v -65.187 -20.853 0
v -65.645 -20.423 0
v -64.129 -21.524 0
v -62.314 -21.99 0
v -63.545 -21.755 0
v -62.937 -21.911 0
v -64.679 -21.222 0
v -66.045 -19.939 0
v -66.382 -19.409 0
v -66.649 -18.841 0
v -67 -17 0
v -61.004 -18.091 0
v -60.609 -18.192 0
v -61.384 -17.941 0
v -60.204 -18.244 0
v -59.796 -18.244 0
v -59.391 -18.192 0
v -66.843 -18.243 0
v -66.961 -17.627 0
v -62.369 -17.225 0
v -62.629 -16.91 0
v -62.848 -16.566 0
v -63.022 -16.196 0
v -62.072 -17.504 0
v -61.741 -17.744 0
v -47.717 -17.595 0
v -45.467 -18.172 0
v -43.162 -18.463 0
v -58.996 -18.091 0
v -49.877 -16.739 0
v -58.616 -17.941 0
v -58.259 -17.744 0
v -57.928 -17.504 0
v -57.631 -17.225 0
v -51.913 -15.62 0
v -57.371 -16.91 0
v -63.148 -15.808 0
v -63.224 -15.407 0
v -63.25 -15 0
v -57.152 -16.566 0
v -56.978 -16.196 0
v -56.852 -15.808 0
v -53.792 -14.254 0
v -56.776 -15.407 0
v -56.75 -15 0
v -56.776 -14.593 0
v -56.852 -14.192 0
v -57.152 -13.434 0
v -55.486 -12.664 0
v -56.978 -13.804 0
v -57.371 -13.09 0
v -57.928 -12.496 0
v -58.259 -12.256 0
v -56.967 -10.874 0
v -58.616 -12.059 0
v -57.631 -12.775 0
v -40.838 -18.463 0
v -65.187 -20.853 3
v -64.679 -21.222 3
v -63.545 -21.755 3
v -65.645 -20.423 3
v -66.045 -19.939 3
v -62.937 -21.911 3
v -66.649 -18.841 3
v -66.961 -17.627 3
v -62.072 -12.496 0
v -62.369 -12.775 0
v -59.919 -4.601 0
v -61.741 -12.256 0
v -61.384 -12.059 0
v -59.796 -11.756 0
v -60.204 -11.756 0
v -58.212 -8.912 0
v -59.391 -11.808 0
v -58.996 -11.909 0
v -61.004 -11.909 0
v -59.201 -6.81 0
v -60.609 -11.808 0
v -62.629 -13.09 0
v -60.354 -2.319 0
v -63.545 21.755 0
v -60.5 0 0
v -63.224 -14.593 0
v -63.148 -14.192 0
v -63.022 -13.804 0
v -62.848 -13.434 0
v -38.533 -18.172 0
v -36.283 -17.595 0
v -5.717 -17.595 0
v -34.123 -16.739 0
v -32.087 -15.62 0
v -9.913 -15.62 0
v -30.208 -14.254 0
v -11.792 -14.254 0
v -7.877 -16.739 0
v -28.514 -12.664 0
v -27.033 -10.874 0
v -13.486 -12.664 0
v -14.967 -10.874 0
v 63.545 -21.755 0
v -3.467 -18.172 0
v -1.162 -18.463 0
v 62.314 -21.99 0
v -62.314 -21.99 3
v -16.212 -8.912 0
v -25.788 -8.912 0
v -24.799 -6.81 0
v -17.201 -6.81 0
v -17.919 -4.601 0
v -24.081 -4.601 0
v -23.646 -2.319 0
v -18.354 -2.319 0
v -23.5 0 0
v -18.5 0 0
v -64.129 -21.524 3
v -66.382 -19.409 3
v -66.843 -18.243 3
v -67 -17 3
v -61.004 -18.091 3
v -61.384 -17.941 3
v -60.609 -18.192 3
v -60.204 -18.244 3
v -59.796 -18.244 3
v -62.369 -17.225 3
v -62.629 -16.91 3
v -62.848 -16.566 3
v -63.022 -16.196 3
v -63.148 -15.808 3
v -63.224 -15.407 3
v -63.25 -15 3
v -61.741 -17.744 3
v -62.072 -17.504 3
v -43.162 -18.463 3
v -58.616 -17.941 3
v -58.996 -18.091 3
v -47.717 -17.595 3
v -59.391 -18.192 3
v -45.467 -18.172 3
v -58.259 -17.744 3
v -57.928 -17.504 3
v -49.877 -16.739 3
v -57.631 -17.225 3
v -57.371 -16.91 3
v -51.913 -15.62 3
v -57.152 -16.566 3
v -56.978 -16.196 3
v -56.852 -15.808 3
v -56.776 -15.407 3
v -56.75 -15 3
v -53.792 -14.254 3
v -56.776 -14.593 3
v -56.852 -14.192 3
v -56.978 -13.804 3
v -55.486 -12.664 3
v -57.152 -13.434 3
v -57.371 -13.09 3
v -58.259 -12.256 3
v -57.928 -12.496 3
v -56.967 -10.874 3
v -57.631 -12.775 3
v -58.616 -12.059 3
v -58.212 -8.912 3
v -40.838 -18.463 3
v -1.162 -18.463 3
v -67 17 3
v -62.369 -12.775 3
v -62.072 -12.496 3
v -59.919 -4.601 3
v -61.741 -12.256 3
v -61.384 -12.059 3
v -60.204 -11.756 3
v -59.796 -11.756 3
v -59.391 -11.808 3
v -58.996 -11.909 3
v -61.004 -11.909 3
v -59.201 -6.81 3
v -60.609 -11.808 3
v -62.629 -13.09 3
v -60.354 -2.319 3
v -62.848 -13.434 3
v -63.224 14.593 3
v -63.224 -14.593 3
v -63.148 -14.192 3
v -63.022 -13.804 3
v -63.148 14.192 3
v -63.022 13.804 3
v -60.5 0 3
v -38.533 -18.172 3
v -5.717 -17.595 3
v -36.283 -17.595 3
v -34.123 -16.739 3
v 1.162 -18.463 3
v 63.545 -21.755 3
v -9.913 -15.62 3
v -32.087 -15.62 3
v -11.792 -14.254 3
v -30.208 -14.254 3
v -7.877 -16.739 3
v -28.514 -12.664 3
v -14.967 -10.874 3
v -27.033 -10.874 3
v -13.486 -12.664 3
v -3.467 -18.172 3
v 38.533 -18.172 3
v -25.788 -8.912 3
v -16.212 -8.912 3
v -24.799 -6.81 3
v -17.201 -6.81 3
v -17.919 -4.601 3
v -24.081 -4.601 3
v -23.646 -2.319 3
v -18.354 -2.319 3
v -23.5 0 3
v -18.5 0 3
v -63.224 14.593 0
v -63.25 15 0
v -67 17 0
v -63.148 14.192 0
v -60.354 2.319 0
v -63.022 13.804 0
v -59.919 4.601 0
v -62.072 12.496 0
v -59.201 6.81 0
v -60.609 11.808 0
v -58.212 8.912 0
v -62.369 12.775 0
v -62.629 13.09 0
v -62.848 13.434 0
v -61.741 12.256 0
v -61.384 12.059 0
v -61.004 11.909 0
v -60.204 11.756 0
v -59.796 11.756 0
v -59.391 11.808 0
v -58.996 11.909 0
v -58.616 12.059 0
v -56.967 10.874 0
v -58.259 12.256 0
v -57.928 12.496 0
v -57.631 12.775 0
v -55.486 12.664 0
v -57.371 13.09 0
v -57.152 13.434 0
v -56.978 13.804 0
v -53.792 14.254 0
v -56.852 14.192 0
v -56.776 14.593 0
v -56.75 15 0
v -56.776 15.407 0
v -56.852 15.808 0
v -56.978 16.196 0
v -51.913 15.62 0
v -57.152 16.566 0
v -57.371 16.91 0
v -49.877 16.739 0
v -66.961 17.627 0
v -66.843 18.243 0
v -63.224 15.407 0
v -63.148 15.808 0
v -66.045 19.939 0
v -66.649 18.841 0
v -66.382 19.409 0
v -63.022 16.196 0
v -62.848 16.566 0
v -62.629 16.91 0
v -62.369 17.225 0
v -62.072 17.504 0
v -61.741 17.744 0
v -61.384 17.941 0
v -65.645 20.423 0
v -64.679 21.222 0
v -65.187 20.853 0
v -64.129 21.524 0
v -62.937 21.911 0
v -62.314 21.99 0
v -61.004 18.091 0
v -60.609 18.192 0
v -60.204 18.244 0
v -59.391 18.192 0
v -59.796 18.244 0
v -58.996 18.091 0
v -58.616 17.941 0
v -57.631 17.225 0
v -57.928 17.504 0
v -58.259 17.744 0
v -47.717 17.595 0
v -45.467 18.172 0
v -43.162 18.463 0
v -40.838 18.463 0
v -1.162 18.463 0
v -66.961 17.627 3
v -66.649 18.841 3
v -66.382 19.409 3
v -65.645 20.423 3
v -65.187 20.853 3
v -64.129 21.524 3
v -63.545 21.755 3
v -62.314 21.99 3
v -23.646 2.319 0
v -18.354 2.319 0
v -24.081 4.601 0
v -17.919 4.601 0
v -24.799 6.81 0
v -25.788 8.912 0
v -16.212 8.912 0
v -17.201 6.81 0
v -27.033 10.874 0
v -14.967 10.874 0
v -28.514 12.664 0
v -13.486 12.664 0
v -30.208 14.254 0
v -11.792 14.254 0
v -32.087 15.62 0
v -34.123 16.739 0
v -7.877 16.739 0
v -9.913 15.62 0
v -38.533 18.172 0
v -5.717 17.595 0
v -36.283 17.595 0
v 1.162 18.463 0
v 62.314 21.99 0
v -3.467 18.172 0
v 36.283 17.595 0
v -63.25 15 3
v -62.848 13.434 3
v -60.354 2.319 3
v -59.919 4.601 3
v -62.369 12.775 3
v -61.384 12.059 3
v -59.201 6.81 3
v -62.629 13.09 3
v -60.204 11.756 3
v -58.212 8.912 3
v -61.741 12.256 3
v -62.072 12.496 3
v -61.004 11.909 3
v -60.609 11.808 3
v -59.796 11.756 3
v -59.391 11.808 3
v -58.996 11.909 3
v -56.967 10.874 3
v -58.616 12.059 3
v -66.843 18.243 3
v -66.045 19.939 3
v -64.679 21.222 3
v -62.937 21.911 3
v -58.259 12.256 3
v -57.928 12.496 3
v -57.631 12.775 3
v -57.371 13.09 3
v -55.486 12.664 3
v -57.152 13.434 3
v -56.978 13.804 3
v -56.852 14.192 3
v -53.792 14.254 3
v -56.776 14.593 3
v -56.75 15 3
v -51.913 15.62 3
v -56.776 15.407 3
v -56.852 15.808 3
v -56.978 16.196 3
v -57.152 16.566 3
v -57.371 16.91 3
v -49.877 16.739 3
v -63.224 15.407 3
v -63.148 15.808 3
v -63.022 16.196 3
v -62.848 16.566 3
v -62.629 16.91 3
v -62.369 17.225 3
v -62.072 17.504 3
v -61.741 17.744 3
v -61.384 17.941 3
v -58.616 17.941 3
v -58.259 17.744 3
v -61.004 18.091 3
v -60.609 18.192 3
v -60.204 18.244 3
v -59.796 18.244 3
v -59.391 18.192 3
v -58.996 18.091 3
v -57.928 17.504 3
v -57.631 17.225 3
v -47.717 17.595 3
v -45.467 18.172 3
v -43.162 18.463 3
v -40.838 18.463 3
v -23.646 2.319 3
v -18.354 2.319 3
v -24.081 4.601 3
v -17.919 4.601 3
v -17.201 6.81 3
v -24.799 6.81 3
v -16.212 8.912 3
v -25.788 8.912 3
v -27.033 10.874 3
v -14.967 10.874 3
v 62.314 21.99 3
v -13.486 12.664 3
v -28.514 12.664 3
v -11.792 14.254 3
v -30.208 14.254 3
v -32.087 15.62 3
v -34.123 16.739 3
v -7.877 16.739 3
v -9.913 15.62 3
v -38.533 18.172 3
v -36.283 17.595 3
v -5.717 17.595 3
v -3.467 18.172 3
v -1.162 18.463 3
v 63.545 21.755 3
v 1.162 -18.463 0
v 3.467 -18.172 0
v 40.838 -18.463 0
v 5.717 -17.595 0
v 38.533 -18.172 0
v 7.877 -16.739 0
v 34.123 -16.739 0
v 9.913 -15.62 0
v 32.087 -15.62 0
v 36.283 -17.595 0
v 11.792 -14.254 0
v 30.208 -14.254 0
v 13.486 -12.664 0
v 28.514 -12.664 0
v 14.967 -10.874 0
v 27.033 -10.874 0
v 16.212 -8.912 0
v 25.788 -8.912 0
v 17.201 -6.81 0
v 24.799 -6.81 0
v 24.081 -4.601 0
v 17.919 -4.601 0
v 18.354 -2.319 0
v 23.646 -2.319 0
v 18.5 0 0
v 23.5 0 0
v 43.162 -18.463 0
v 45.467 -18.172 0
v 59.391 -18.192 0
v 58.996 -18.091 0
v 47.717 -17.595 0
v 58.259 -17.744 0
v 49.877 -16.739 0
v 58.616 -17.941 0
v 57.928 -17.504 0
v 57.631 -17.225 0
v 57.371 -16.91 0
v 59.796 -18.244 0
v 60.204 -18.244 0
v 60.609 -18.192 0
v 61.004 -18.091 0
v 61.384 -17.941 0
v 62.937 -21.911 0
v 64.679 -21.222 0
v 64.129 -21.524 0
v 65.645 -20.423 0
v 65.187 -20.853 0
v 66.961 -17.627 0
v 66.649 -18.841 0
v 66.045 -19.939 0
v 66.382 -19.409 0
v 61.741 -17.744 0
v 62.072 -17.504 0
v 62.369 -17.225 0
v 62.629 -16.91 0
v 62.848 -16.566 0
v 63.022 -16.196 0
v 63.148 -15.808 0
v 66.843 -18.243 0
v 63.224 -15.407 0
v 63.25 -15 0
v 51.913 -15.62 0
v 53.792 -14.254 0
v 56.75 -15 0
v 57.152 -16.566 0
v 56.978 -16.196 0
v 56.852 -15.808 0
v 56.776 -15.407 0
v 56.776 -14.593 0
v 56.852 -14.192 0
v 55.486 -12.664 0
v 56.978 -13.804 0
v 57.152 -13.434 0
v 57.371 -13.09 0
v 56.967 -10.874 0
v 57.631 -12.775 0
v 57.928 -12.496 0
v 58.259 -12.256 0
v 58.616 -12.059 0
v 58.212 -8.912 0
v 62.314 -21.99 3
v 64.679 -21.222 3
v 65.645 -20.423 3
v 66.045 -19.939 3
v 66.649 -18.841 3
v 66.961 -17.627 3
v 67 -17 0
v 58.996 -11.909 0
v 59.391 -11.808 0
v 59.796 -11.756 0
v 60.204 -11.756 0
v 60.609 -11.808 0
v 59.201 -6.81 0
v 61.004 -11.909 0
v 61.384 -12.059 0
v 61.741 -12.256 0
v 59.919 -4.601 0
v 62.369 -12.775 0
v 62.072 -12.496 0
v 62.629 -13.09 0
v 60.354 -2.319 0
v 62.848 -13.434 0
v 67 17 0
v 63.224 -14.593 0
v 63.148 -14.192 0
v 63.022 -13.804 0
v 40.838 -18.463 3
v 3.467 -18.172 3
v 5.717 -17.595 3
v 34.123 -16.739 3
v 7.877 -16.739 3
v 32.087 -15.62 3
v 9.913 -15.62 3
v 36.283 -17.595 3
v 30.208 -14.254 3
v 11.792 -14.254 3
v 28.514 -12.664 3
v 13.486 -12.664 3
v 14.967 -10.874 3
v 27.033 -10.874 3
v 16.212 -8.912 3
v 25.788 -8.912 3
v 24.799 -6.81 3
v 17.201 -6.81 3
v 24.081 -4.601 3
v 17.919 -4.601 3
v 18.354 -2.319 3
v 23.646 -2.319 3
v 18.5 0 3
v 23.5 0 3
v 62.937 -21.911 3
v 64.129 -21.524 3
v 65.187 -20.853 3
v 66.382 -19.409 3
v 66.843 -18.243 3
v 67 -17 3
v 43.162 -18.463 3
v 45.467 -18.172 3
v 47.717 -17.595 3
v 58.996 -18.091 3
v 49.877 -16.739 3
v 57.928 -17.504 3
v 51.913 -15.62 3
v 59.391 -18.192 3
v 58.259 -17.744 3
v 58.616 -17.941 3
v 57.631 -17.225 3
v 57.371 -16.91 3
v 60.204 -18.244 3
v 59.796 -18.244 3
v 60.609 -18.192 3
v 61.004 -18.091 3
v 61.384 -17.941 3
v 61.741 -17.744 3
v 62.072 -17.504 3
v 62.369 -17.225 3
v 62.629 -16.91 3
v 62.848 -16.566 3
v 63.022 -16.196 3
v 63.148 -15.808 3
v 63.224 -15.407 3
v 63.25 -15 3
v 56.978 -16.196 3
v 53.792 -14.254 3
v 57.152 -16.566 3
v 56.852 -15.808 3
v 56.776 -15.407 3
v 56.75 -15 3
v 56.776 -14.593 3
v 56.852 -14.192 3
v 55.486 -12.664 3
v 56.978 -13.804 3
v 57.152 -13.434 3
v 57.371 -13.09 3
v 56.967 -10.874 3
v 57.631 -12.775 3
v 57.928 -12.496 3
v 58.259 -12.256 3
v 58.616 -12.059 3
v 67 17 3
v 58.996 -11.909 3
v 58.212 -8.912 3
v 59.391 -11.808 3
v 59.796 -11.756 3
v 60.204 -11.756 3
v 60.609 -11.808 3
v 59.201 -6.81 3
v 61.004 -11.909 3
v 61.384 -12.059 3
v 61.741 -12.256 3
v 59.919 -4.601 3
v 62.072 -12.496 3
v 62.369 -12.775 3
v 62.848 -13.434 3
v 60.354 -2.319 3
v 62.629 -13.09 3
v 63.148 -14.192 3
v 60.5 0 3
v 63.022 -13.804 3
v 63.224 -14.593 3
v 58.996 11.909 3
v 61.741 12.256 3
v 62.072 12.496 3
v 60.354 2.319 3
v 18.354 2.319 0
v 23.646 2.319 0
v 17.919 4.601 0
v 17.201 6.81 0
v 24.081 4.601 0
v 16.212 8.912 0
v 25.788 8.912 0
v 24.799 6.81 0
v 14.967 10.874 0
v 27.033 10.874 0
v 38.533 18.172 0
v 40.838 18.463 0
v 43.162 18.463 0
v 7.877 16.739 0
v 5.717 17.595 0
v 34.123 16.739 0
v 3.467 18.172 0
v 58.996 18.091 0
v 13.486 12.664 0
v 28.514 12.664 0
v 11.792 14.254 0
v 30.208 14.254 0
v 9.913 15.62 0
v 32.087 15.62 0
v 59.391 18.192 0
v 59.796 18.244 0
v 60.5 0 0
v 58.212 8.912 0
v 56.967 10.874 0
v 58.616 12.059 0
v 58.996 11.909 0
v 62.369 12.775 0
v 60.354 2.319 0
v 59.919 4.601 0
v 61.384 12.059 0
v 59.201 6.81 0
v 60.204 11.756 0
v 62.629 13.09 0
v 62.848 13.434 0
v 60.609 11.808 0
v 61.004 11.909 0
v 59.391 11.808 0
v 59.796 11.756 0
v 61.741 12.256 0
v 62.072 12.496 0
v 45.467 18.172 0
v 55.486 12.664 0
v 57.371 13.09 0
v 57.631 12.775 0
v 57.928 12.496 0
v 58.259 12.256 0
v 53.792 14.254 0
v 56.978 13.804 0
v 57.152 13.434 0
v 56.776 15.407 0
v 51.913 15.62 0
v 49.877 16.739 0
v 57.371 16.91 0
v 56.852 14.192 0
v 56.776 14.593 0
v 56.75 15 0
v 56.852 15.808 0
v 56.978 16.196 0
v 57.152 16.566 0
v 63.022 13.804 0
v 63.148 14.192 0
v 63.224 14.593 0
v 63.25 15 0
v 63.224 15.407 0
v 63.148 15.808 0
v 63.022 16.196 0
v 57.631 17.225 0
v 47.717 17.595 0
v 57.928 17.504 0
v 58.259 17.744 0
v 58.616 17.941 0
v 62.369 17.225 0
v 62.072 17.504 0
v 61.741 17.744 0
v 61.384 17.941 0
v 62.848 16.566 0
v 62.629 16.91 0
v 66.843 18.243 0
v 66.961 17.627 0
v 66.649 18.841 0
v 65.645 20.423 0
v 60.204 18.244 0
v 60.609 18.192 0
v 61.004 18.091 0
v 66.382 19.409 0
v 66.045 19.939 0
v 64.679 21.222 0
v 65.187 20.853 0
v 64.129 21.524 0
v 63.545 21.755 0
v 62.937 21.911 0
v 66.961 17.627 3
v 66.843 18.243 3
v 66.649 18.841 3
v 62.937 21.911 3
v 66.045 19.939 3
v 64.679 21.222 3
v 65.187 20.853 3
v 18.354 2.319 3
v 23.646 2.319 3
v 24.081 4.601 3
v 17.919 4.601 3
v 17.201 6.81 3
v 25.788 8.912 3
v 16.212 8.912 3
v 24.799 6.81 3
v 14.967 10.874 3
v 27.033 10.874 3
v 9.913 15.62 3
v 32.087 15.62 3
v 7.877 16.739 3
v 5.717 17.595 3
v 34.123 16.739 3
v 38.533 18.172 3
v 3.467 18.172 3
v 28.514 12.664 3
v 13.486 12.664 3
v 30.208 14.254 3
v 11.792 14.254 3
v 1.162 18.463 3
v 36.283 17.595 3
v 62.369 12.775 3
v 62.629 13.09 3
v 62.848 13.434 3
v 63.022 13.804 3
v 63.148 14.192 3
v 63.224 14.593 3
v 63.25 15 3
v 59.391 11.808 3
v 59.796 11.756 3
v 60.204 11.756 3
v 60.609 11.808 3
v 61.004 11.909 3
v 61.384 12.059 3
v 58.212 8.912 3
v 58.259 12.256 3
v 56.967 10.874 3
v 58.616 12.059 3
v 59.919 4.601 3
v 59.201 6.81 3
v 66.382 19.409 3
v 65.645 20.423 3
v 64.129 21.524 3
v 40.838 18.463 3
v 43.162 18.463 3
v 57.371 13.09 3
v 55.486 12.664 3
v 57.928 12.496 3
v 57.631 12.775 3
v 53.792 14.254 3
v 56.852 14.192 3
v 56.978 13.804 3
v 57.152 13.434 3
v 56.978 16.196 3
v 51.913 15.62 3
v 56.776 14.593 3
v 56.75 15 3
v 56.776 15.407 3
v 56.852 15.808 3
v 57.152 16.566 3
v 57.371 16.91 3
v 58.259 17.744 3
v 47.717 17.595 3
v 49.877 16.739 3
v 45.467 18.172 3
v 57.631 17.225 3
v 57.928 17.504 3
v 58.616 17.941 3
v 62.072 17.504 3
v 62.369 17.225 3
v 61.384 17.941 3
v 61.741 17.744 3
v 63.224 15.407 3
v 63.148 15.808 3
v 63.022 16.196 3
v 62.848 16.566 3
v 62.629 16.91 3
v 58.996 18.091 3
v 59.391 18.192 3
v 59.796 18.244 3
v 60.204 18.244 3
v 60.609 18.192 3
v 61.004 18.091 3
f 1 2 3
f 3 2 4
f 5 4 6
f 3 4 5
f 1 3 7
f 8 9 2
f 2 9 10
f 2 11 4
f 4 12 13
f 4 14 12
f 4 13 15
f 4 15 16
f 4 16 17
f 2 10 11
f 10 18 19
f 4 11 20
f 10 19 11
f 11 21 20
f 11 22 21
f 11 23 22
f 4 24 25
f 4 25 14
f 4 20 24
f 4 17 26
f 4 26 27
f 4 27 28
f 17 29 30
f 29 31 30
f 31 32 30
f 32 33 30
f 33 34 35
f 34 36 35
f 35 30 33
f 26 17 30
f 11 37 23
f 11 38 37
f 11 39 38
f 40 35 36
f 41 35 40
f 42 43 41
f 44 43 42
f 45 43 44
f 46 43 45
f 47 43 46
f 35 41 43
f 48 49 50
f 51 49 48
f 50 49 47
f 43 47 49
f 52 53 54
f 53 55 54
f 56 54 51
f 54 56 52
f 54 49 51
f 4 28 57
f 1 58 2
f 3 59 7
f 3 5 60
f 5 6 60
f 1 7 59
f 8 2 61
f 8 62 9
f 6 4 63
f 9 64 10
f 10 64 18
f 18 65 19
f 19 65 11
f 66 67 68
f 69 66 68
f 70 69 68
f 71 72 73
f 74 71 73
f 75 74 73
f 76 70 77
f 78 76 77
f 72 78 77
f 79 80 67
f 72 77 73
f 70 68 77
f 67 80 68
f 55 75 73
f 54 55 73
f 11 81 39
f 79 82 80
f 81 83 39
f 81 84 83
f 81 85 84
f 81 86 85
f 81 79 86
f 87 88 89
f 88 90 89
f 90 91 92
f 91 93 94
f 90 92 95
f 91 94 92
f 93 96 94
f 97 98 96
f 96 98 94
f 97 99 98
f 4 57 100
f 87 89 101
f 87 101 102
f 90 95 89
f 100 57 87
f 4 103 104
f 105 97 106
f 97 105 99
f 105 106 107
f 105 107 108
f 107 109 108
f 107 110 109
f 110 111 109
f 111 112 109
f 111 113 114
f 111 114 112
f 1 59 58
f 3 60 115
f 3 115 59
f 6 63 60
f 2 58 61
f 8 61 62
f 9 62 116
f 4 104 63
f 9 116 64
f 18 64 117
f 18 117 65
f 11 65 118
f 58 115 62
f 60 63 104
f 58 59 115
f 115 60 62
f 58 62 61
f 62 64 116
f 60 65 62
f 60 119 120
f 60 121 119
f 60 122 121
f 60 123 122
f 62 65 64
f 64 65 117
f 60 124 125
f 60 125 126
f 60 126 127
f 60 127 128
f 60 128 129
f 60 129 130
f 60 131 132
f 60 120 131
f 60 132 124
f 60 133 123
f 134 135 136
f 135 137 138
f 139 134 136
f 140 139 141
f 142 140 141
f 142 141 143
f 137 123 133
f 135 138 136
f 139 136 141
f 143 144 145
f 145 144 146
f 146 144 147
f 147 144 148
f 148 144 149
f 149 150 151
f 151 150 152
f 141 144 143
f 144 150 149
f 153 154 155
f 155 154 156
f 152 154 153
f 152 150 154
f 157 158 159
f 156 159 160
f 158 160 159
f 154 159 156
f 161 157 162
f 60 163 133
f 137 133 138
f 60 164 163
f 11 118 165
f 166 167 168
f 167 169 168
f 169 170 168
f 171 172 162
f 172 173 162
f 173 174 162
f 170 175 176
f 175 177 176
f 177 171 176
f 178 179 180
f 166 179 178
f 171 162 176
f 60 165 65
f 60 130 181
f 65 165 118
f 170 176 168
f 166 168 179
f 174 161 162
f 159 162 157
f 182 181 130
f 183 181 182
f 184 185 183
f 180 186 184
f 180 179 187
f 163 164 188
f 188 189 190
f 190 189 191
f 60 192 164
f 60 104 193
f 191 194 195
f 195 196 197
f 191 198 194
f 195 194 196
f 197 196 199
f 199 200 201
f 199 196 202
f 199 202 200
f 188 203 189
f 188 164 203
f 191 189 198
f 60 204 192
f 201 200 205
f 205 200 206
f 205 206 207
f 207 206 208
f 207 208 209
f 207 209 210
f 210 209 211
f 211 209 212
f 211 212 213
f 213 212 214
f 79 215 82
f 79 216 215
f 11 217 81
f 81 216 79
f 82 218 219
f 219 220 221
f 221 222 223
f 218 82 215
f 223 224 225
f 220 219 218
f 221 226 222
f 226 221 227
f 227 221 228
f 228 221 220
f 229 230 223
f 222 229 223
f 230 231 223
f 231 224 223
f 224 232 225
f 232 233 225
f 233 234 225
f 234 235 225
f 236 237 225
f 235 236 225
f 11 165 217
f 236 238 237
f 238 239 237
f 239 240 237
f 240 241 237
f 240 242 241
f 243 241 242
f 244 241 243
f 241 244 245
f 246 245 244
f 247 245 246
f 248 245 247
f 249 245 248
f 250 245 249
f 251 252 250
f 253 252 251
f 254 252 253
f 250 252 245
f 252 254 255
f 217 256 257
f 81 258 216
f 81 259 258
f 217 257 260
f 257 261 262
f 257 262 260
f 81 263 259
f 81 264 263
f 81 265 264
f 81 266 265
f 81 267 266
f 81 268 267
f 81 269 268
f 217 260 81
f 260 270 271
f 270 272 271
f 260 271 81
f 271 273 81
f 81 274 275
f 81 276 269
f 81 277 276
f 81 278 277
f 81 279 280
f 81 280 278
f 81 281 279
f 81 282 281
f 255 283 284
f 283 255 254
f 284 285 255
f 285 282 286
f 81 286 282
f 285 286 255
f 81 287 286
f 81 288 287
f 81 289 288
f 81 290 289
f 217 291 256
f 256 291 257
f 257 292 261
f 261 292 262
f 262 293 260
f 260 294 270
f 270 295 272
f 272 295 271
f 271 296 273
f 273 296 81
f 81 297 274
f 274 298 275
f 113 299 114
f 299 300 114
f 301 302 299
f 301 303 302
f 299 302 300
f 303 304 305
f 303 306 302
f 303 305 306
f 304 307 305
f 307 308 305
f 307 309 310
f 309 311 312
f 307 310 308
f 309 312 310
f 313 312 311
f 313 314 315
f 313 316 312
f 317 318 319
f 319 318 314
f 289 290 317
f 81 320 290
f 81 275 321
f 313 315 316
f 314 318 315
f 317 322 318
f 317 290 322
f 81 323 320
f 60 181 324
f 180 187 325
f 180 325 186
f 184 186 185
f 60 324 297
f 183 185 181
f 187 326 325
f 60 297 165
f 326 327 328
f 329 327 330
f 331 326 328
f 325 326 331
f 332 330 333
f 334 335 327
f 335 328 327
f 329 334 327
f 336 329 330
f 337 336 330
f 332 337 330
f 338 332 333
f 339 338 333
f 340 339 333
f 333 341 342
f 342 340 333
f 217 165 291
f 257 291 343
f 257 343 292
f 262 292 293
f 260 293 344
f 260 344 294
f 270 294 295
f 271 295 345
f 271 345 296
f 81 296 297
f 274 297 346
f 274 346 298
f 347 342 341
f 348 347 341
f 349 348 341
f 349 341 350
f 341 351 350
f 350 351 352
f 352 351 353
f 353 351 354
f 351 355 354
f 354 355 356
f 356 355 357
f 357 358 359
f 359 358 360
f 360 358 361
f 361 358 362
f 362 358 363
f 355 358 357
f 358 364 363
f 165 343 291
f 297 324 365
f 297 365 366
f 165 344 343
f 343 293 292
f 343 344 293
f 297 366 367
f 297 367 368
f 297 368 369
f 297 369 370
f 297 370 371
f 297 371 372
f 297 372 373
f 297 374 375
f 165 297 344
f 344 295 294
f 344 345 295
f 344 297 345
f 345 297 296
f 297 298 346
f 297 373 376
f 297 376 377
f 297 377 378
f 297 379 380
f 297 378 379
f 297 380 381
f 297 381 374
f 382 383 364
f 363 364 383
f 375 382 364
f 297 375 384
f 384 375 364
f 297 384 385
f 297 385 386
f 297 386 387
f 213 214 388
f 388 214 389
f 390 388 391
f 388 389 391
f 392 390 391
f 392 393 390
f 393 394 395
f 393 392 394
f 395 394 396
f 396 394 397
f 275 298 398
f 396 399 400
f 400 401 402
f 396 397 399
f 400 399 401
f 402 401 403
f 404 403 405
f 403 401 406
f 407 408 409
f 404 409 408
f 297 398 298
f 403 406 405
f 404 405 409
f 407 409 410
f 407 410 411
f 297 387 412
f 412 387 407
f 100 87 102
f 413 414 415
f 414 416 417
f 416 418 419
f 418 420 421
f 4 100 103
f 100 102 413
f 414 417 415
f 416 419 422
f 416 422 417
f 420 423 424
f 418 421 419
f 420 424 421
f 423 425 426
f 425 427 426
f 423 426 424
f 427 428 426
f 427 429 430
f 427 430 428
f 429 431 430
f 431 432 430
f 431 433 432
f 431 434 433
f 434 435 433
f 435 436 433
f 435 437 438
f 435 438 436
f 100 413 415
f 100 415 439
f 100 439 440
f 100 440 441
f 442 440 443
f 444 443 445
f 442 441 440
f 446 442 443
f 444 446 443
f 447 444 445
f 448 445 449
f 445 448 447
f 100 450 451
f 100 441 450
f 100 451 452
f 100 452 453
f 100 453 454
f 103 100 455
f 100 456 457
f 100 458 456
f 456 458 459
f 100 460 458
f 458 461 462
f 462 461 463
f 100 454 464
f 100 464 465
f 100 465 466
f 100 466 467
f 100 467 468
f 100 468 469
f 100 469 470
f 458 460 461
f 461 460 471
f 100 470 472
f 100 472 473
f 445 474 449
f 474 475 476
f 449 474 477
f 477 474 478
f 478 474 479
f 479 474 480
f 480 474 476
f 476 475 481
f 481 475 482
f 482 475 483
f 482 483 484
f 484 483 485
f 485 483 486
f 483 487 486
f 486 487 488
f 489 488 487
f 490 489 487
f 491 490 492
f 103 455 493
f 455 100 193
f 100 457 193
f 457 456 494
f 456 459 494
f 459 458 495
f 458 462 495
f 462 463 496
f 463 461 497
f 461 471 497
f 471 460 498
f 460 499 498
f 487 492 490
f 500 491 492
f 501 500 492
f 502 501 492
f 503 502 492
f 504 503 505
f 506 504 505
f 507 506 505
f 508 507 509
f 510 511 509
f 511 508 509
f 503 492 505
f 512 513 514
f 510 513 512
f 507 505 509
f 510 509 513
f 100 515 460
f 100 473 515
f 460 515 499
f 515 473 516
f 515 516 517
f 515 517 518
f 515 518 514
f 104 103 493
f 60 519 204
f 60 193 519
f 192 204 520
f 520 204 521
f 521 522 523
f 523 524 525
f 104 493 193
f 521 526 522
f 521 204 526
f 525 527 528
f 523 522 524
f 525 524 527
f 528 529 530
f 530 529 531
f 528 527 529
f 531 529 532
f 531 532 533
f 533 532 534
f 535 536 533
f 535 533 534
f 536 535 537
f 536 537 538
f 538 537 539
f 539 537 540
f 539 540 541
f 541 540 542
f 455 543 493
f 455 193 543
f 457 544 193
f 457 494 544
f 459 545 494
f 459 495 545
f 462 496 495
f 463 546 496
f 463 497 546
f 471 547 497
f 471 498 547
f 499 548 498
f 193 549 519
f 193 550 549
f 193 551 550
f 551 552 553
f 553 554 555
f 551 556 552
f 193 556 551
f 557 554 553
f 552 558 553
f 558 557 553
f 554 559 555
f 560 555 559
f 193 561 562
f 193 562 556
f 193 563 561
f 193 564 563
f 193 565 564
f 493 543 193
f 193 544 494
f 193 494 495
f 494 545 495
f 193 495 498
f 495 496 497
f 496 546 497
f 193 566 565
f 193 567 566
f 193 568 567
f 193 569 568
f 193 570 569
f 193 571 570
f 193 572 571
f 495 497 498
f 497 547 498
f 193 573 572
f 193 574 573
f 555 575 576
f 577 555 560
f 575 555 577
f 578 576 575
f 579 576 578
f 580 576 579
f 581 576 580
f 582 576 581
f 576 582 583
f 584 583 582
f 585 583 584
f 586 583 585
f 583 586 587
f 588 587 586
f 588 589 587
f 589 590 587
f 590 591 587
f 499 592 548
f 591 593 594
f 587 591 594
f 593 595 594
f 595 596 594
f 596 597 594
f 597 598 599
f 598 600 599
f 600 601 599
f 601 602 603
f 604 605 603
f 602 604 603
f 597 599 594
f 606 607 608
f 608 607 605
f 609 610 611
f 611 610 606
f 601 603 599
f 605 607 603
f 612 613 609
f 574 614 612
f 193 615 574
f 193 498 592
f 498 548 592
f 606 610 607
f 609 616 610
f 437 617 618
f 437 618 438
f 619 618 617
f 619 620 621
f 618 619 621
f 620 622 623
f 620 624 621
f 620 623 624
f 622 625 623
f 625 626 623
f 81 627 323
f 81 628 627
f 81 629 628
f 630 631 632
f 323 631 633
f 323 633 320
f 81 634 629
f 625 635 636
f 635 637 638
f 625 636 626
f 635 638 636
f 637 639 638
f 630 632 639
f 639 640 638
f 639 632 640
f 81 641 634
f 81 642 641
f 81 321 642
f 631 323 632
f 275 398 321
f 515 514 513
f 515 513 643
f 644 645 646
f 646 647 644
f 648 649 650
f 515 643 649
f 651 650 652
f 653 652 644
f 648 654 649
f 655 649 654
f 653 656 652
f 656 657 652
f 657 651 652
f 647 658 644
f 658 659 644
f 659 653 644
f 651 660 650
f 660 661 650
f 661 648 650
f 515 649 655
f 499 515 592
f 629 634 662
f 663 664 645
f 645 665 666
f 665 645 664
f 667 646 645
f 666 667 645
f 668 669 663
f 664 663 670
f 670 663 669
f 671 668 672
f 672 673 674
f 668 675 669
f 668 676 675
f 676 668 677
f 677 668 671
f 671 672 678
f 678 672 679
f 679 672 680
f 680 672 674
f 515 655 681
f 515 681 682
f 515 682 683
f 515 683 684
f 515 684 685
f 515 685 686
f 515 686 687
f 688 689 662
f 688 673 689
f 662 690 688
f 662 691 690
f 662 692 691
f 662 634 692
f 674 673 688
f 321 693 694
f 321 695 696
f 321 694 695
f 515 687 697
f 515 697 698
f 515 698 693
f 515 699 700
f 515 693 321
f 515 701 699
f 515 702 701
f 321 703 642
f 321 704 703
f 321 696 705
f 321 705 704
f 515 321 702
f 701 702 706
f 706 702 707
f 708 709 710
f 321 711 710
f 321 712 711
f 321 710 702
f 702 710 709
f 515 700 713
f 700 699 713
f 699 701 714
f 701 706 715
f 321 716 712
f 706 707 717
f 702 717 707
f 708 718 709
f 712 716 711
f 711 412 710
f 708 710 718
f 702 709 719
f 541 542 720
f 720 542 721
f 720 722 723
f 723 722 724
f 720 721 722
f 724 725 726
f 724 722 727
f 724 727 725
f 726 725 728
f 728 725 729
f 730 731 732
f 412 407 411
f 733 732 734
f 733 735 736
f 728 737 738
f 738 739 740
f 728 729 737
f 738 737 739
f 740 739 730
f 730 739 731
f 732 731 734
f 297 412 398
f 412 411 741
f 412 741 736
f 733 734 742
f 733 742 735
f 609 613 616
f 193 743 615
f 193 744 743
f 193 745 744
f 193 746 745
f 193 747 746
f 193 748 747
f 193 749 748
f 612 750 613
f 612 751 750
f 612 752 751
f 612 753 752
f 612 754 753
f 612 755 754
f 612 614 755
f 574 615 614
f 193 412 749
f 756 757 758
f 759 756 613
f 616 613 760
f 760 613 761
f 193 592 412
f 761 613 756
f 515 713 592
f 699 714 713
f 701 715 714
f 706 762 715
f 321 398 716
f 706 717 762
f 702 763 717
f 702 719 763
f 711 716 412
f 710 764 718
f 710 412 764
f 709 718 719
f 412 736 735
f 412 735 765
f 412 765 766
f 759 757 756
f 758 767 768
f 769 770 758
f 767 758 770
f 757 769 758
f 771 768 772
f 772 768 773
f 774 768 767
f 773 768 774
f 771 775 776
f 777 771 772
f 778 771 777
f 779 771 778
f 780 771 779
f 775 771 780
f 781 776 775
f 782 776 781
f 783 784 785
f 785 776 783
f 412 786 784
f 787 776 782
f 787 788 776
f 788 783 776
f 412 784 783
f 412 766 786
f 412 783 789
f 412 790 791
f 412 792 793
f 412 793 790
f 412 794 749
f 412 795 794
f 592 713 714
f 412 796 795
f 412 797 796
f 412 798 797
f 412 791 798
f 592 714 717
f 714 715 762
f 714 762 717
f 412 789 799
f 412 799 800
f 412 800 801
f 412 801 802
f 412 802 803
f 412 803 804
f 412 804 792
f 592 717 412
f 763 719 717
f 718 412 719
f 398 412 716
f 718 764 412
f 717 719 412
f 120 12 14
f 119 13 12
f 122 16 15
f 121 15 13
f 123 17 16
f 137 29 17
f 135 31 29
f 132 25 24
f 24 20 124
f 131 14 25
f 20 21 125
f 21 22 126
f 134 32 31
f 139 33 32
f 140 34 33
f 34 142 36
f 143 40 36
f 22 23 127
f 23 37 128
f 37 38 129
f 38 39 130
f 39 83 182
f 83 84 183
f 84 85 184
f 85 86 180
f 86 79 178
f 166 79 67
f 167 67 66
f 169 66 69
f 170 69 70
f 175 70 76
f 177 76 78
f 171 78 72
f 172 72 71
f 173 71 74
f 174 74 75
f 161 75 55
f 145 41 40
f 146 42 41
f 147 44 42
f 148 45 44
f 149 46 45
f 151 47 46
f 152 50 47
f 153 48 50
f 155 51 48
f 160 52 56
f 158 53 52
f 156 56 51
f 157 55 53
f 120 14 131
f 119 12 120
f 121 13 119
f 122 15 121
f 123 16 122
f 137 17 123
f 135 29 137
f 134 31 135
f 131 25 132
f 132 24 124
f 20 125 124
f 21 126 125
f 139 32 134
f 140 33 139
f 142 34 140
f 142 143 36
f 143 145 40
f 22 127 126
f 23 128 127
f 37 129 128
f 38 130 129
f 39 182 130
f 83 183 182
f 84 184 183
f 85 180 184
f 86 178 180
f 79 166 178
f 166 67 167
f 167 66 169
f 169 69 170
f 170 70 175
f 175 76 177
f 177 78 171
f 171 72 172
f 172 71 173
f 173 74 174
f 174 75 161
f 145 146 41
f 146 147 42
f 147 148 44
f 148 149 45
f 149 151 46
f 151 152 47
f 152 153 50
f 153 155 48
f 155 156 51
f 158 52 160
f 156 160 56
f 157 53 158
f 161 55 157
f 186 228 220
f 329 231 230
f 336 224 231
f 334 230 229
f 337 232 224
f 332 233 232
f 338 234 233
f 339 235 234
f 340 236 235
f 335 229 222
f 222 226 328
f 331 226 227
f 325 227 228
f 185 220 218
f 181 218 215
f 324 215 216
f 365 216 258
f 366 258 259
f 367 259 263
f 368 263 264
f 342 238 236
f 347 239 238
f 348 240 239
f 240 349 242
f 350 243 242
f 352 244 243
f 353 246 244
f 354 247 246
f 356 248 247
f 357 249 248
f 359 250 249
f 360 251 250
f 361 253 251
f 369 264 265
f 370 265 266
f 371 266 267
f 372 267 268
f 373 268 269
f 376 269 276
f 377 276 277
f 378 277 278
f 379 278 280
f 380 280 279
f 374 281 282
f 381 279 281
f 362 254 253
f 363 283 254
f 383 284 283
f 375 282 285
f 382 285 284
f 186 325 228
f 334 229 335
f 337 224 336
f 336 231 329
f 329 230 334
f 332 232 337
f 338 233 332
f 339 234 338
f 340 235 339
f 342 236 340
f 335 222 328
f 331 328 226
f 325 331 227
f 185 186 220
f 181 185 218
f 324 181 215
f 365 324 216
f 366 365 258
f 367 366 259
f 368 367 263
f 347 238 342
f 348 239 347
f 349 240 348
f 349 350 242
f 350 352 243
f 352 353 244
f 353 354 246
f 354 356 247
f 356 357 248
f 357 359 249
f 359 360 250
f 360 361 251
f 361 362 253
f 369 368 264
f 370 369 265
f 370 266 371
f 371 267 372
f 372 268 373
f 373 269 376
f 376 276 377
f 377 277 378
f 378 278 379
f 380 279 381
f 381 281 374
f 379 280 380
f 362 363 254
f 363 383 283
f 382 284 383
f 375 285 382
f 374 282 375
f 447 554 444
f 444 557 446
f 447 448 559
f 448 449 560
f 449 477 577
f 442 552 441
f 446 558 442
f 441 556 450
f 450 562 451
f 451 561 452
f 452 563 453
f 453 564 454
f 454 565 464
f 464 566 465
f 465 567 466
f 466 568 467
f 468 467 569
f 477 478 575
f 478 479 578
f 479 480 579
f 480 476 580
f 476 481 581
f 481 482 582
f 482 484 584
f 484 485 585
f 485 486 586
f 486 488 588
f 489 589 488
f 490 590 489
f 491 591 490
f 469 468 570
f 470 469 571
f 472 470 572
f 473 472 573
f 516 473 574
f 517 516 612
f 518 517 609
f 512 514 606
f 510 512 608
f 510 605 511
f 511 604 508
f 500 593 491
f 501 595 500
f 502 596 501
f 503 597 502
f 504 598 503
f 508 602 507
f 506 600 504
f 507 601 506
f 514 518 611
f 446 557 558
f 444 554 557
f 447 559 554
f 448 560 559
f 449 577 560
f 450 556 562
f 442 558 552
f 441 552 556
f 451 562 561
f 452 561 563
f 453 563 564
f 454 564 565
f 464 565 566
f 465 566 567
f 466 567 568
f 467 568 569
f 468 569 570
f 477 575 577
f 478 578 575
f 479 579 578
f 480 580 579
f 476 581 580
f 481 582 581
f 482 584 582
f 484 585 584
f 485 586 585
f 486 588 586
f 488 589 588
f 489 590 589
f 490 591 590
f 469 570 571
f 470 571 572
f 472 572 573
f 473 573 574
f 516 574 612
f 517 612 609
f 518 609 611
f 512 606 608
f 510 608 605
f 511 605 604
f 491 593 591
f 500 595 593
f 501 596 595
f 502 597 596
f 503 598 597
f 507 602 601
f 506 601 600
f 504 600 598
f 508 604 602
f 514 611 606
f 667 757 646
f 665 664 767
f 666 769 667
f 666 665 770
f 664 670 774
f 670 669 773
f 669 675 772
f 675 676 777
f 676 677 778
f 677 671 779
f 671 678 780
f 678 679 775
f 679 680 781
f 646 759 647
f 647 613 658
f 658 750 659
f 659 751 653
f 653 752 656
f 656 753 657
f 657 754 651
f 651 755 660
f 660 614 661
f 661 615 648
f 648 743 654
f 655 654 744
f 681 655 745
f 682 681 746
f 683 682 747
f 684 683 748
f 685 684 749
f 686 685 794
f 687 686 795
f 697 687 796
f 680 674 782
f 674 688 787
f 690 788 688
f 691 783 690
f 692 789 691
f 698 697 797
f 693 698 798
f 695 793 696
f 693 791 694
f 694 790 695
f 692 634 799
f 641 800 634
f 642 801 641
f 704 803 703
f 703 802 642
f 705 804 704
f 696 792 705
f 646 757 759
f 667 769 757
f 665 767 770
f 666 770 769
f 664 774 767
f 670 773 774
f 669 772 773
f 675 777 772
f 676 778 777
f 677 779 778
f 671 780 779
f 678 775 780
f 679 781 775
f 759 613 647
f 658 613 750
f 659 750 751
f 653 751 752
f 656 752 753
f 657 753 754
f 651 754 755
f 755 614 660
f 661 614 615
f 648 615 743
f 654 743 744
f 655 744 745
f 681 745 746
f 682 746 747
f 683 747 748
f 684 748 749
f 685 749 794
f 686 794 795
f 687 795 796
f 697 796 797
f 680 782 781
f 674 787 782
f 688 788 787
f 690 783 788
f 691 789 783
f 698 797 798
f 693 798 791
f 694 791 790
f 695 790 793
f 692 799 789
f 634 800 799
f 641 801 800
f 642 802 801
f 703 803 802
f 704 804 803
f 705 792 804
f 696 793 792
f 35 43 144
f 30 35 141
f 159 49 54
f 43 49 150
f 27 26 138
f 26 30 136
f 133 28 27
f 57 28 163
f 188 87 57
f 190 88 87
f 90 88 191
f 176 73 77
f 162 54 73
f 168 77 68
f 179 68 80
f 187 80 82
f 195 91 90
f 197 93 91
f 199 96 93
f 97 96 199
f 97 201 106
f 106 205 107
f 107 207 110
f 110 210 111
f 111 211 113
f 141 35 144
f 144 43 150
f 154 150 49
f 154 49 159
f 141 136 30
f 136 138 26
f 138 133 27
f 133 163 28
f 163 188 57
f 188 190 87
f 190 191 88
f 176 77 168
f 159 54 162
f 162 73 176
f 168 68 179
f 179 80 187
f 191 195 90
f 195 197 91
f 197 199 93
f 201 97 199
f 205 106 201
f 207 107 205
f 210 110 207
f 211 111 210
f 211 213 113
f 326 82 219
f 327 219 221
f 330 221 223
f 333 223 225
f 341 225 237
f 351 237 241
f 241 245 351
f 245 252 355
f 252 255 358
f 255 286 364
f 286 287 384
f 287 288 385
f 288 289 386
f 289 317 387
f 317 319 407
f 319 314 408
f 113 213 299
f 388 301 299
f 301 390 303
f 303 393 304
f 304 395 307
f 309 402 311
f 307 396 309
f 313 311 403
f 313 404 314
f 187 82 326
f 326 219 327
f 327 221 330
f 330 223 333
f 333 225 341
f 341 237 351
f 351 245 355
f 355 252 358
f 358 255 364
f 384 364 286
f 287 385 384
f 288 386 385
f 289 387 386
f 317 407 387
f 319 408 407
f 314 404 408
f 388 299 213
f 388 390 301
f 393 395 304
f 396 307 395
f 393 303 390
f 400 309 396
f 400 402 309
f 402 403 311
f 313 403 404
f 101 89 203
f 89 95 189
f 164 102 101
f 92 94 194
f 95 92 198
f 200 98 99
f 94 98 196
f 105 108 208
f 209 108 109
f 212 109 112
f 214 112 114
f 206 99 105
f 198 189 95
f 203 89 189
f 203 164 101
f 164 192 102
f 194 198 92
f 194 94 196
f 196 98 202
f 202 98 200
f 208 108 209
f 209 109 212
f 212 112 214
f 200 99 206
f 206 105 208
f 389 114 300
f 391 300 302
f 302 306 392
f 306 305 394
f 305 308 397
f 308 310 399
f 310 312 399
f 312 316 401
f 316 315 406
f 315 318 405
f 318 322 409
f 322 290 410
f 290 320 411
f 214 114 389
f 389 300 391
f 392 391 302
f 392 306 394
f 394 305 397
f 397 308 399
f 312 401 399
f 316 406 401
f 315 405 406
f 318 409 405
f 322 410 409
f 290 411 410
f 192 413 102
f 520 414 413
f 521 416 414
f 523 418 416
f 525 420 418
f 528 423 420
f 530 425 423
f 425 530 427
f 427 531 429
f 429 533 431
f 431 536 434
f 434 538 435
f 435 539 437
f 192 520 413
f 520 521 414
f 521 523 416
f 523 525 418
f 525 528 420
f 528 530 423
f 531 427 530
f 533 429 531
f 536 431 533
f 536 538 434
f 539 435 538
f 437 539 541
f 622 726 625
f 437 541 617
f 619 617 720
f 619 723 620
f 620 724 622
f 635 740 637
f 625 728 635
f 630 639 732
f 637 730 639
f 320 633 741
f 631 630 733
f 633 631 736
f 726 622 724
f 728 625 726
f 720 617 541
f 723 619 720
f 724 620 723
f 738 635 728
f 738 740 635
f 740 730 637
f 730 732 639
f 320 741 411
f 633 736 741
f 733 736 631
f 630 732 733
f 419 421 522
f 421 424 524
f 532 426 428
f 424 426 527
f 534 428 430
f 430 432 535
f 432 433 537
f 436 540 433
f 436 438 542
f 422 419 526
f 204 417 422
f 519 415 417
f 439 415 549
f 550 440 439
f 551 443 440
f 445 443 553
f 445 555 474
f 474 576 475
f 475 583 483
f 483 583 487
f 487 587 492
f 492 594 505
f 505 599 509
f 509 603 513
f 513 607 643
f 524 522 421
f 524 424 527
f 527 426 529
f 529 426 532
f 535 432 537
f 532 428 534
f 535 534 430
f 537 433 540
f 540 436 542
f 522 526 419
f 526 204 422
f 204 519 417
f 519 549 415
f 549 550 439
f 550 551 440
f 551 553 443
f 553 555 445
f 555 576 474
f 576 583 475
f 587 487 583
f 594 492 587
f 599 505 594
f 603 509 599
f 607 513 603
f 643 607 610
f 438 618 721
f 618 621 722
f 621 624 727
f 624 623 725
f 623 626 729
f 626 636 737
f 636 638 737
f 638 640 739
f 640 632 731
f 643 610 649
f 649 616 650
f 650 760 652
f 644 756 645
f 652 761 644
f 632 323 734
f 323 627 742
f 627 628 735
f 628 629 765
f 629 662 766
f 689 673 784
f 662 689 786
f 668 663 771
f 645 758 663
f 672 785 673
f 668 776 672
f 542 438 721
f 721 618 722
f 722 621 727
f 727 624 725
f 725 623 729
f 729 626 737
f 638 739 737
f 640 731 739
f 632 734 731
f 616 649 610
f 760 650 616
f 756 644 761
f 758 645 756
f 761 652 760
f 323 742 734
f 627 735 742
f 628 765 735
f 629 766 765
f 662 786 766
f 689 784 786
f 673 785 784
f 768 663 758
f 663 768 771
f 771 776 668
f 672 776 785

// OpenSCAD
$fn = 50;

difference() {
	union() {
		hull() {
			translate(v = [-62.0, 17.0, 0]) {
				cylinder(h = 3, r = 5);
			}
			translate(v = [62.0, 17.0, 0]) {
				cylinder(h = 3, r = 5);
			}
			translate(v = [-62.0, -17.0, 0]) {
				cylinder(h = 3, r = 5);
			}
			translate(v = [62.0, -17.0, 0]) {
				cylinder(h = 3, r = 5);
			}
		}
	}
	union() {
		translate(v = [-60.0, -15.0, -100.0]) {
			cylinder(h = 200, r = 3.25);
		}
		translate(v = [-60.0, 15.0, -100.0]) {
			cylinder(h = 200, r = 3.25);
		}
		translate(v = [60.0, -15.0, -100.0]) {
			cylinder(h = 200, r = 3.25);
		}
		translate(v = [60.0, 15.0, -100.0]) {
			cylinder(h = 200, r = 3.25);
		}
		translate(v = [-60.0, -15.0, -100.0]) {
			cylinder(h = 200, r = 1.8);
		}
		translate(v = [-60.0, 15.0, -100.0]) {
			cylinder(h = 200, r = 1.8);
		}
		translate(v = [60.0, -15.0, -100.0]) {
			cylinder(h = 200, r = 1.8);
		}
		translate(v = [60.0, 15.0, -100.0]) {
			cylinder(h = 200, r = 1.8);
		}
		translate(v = [-42.0, 0, 0.0]) {
			cylinder(h = 3, r = 18.5);
		}
		cylinder(h = 3, r = 18.5);
		translate(v = [42.0, 0, 0.0]) {
			cylinder(h = 3, r = 18.5);
		}
	}
}
